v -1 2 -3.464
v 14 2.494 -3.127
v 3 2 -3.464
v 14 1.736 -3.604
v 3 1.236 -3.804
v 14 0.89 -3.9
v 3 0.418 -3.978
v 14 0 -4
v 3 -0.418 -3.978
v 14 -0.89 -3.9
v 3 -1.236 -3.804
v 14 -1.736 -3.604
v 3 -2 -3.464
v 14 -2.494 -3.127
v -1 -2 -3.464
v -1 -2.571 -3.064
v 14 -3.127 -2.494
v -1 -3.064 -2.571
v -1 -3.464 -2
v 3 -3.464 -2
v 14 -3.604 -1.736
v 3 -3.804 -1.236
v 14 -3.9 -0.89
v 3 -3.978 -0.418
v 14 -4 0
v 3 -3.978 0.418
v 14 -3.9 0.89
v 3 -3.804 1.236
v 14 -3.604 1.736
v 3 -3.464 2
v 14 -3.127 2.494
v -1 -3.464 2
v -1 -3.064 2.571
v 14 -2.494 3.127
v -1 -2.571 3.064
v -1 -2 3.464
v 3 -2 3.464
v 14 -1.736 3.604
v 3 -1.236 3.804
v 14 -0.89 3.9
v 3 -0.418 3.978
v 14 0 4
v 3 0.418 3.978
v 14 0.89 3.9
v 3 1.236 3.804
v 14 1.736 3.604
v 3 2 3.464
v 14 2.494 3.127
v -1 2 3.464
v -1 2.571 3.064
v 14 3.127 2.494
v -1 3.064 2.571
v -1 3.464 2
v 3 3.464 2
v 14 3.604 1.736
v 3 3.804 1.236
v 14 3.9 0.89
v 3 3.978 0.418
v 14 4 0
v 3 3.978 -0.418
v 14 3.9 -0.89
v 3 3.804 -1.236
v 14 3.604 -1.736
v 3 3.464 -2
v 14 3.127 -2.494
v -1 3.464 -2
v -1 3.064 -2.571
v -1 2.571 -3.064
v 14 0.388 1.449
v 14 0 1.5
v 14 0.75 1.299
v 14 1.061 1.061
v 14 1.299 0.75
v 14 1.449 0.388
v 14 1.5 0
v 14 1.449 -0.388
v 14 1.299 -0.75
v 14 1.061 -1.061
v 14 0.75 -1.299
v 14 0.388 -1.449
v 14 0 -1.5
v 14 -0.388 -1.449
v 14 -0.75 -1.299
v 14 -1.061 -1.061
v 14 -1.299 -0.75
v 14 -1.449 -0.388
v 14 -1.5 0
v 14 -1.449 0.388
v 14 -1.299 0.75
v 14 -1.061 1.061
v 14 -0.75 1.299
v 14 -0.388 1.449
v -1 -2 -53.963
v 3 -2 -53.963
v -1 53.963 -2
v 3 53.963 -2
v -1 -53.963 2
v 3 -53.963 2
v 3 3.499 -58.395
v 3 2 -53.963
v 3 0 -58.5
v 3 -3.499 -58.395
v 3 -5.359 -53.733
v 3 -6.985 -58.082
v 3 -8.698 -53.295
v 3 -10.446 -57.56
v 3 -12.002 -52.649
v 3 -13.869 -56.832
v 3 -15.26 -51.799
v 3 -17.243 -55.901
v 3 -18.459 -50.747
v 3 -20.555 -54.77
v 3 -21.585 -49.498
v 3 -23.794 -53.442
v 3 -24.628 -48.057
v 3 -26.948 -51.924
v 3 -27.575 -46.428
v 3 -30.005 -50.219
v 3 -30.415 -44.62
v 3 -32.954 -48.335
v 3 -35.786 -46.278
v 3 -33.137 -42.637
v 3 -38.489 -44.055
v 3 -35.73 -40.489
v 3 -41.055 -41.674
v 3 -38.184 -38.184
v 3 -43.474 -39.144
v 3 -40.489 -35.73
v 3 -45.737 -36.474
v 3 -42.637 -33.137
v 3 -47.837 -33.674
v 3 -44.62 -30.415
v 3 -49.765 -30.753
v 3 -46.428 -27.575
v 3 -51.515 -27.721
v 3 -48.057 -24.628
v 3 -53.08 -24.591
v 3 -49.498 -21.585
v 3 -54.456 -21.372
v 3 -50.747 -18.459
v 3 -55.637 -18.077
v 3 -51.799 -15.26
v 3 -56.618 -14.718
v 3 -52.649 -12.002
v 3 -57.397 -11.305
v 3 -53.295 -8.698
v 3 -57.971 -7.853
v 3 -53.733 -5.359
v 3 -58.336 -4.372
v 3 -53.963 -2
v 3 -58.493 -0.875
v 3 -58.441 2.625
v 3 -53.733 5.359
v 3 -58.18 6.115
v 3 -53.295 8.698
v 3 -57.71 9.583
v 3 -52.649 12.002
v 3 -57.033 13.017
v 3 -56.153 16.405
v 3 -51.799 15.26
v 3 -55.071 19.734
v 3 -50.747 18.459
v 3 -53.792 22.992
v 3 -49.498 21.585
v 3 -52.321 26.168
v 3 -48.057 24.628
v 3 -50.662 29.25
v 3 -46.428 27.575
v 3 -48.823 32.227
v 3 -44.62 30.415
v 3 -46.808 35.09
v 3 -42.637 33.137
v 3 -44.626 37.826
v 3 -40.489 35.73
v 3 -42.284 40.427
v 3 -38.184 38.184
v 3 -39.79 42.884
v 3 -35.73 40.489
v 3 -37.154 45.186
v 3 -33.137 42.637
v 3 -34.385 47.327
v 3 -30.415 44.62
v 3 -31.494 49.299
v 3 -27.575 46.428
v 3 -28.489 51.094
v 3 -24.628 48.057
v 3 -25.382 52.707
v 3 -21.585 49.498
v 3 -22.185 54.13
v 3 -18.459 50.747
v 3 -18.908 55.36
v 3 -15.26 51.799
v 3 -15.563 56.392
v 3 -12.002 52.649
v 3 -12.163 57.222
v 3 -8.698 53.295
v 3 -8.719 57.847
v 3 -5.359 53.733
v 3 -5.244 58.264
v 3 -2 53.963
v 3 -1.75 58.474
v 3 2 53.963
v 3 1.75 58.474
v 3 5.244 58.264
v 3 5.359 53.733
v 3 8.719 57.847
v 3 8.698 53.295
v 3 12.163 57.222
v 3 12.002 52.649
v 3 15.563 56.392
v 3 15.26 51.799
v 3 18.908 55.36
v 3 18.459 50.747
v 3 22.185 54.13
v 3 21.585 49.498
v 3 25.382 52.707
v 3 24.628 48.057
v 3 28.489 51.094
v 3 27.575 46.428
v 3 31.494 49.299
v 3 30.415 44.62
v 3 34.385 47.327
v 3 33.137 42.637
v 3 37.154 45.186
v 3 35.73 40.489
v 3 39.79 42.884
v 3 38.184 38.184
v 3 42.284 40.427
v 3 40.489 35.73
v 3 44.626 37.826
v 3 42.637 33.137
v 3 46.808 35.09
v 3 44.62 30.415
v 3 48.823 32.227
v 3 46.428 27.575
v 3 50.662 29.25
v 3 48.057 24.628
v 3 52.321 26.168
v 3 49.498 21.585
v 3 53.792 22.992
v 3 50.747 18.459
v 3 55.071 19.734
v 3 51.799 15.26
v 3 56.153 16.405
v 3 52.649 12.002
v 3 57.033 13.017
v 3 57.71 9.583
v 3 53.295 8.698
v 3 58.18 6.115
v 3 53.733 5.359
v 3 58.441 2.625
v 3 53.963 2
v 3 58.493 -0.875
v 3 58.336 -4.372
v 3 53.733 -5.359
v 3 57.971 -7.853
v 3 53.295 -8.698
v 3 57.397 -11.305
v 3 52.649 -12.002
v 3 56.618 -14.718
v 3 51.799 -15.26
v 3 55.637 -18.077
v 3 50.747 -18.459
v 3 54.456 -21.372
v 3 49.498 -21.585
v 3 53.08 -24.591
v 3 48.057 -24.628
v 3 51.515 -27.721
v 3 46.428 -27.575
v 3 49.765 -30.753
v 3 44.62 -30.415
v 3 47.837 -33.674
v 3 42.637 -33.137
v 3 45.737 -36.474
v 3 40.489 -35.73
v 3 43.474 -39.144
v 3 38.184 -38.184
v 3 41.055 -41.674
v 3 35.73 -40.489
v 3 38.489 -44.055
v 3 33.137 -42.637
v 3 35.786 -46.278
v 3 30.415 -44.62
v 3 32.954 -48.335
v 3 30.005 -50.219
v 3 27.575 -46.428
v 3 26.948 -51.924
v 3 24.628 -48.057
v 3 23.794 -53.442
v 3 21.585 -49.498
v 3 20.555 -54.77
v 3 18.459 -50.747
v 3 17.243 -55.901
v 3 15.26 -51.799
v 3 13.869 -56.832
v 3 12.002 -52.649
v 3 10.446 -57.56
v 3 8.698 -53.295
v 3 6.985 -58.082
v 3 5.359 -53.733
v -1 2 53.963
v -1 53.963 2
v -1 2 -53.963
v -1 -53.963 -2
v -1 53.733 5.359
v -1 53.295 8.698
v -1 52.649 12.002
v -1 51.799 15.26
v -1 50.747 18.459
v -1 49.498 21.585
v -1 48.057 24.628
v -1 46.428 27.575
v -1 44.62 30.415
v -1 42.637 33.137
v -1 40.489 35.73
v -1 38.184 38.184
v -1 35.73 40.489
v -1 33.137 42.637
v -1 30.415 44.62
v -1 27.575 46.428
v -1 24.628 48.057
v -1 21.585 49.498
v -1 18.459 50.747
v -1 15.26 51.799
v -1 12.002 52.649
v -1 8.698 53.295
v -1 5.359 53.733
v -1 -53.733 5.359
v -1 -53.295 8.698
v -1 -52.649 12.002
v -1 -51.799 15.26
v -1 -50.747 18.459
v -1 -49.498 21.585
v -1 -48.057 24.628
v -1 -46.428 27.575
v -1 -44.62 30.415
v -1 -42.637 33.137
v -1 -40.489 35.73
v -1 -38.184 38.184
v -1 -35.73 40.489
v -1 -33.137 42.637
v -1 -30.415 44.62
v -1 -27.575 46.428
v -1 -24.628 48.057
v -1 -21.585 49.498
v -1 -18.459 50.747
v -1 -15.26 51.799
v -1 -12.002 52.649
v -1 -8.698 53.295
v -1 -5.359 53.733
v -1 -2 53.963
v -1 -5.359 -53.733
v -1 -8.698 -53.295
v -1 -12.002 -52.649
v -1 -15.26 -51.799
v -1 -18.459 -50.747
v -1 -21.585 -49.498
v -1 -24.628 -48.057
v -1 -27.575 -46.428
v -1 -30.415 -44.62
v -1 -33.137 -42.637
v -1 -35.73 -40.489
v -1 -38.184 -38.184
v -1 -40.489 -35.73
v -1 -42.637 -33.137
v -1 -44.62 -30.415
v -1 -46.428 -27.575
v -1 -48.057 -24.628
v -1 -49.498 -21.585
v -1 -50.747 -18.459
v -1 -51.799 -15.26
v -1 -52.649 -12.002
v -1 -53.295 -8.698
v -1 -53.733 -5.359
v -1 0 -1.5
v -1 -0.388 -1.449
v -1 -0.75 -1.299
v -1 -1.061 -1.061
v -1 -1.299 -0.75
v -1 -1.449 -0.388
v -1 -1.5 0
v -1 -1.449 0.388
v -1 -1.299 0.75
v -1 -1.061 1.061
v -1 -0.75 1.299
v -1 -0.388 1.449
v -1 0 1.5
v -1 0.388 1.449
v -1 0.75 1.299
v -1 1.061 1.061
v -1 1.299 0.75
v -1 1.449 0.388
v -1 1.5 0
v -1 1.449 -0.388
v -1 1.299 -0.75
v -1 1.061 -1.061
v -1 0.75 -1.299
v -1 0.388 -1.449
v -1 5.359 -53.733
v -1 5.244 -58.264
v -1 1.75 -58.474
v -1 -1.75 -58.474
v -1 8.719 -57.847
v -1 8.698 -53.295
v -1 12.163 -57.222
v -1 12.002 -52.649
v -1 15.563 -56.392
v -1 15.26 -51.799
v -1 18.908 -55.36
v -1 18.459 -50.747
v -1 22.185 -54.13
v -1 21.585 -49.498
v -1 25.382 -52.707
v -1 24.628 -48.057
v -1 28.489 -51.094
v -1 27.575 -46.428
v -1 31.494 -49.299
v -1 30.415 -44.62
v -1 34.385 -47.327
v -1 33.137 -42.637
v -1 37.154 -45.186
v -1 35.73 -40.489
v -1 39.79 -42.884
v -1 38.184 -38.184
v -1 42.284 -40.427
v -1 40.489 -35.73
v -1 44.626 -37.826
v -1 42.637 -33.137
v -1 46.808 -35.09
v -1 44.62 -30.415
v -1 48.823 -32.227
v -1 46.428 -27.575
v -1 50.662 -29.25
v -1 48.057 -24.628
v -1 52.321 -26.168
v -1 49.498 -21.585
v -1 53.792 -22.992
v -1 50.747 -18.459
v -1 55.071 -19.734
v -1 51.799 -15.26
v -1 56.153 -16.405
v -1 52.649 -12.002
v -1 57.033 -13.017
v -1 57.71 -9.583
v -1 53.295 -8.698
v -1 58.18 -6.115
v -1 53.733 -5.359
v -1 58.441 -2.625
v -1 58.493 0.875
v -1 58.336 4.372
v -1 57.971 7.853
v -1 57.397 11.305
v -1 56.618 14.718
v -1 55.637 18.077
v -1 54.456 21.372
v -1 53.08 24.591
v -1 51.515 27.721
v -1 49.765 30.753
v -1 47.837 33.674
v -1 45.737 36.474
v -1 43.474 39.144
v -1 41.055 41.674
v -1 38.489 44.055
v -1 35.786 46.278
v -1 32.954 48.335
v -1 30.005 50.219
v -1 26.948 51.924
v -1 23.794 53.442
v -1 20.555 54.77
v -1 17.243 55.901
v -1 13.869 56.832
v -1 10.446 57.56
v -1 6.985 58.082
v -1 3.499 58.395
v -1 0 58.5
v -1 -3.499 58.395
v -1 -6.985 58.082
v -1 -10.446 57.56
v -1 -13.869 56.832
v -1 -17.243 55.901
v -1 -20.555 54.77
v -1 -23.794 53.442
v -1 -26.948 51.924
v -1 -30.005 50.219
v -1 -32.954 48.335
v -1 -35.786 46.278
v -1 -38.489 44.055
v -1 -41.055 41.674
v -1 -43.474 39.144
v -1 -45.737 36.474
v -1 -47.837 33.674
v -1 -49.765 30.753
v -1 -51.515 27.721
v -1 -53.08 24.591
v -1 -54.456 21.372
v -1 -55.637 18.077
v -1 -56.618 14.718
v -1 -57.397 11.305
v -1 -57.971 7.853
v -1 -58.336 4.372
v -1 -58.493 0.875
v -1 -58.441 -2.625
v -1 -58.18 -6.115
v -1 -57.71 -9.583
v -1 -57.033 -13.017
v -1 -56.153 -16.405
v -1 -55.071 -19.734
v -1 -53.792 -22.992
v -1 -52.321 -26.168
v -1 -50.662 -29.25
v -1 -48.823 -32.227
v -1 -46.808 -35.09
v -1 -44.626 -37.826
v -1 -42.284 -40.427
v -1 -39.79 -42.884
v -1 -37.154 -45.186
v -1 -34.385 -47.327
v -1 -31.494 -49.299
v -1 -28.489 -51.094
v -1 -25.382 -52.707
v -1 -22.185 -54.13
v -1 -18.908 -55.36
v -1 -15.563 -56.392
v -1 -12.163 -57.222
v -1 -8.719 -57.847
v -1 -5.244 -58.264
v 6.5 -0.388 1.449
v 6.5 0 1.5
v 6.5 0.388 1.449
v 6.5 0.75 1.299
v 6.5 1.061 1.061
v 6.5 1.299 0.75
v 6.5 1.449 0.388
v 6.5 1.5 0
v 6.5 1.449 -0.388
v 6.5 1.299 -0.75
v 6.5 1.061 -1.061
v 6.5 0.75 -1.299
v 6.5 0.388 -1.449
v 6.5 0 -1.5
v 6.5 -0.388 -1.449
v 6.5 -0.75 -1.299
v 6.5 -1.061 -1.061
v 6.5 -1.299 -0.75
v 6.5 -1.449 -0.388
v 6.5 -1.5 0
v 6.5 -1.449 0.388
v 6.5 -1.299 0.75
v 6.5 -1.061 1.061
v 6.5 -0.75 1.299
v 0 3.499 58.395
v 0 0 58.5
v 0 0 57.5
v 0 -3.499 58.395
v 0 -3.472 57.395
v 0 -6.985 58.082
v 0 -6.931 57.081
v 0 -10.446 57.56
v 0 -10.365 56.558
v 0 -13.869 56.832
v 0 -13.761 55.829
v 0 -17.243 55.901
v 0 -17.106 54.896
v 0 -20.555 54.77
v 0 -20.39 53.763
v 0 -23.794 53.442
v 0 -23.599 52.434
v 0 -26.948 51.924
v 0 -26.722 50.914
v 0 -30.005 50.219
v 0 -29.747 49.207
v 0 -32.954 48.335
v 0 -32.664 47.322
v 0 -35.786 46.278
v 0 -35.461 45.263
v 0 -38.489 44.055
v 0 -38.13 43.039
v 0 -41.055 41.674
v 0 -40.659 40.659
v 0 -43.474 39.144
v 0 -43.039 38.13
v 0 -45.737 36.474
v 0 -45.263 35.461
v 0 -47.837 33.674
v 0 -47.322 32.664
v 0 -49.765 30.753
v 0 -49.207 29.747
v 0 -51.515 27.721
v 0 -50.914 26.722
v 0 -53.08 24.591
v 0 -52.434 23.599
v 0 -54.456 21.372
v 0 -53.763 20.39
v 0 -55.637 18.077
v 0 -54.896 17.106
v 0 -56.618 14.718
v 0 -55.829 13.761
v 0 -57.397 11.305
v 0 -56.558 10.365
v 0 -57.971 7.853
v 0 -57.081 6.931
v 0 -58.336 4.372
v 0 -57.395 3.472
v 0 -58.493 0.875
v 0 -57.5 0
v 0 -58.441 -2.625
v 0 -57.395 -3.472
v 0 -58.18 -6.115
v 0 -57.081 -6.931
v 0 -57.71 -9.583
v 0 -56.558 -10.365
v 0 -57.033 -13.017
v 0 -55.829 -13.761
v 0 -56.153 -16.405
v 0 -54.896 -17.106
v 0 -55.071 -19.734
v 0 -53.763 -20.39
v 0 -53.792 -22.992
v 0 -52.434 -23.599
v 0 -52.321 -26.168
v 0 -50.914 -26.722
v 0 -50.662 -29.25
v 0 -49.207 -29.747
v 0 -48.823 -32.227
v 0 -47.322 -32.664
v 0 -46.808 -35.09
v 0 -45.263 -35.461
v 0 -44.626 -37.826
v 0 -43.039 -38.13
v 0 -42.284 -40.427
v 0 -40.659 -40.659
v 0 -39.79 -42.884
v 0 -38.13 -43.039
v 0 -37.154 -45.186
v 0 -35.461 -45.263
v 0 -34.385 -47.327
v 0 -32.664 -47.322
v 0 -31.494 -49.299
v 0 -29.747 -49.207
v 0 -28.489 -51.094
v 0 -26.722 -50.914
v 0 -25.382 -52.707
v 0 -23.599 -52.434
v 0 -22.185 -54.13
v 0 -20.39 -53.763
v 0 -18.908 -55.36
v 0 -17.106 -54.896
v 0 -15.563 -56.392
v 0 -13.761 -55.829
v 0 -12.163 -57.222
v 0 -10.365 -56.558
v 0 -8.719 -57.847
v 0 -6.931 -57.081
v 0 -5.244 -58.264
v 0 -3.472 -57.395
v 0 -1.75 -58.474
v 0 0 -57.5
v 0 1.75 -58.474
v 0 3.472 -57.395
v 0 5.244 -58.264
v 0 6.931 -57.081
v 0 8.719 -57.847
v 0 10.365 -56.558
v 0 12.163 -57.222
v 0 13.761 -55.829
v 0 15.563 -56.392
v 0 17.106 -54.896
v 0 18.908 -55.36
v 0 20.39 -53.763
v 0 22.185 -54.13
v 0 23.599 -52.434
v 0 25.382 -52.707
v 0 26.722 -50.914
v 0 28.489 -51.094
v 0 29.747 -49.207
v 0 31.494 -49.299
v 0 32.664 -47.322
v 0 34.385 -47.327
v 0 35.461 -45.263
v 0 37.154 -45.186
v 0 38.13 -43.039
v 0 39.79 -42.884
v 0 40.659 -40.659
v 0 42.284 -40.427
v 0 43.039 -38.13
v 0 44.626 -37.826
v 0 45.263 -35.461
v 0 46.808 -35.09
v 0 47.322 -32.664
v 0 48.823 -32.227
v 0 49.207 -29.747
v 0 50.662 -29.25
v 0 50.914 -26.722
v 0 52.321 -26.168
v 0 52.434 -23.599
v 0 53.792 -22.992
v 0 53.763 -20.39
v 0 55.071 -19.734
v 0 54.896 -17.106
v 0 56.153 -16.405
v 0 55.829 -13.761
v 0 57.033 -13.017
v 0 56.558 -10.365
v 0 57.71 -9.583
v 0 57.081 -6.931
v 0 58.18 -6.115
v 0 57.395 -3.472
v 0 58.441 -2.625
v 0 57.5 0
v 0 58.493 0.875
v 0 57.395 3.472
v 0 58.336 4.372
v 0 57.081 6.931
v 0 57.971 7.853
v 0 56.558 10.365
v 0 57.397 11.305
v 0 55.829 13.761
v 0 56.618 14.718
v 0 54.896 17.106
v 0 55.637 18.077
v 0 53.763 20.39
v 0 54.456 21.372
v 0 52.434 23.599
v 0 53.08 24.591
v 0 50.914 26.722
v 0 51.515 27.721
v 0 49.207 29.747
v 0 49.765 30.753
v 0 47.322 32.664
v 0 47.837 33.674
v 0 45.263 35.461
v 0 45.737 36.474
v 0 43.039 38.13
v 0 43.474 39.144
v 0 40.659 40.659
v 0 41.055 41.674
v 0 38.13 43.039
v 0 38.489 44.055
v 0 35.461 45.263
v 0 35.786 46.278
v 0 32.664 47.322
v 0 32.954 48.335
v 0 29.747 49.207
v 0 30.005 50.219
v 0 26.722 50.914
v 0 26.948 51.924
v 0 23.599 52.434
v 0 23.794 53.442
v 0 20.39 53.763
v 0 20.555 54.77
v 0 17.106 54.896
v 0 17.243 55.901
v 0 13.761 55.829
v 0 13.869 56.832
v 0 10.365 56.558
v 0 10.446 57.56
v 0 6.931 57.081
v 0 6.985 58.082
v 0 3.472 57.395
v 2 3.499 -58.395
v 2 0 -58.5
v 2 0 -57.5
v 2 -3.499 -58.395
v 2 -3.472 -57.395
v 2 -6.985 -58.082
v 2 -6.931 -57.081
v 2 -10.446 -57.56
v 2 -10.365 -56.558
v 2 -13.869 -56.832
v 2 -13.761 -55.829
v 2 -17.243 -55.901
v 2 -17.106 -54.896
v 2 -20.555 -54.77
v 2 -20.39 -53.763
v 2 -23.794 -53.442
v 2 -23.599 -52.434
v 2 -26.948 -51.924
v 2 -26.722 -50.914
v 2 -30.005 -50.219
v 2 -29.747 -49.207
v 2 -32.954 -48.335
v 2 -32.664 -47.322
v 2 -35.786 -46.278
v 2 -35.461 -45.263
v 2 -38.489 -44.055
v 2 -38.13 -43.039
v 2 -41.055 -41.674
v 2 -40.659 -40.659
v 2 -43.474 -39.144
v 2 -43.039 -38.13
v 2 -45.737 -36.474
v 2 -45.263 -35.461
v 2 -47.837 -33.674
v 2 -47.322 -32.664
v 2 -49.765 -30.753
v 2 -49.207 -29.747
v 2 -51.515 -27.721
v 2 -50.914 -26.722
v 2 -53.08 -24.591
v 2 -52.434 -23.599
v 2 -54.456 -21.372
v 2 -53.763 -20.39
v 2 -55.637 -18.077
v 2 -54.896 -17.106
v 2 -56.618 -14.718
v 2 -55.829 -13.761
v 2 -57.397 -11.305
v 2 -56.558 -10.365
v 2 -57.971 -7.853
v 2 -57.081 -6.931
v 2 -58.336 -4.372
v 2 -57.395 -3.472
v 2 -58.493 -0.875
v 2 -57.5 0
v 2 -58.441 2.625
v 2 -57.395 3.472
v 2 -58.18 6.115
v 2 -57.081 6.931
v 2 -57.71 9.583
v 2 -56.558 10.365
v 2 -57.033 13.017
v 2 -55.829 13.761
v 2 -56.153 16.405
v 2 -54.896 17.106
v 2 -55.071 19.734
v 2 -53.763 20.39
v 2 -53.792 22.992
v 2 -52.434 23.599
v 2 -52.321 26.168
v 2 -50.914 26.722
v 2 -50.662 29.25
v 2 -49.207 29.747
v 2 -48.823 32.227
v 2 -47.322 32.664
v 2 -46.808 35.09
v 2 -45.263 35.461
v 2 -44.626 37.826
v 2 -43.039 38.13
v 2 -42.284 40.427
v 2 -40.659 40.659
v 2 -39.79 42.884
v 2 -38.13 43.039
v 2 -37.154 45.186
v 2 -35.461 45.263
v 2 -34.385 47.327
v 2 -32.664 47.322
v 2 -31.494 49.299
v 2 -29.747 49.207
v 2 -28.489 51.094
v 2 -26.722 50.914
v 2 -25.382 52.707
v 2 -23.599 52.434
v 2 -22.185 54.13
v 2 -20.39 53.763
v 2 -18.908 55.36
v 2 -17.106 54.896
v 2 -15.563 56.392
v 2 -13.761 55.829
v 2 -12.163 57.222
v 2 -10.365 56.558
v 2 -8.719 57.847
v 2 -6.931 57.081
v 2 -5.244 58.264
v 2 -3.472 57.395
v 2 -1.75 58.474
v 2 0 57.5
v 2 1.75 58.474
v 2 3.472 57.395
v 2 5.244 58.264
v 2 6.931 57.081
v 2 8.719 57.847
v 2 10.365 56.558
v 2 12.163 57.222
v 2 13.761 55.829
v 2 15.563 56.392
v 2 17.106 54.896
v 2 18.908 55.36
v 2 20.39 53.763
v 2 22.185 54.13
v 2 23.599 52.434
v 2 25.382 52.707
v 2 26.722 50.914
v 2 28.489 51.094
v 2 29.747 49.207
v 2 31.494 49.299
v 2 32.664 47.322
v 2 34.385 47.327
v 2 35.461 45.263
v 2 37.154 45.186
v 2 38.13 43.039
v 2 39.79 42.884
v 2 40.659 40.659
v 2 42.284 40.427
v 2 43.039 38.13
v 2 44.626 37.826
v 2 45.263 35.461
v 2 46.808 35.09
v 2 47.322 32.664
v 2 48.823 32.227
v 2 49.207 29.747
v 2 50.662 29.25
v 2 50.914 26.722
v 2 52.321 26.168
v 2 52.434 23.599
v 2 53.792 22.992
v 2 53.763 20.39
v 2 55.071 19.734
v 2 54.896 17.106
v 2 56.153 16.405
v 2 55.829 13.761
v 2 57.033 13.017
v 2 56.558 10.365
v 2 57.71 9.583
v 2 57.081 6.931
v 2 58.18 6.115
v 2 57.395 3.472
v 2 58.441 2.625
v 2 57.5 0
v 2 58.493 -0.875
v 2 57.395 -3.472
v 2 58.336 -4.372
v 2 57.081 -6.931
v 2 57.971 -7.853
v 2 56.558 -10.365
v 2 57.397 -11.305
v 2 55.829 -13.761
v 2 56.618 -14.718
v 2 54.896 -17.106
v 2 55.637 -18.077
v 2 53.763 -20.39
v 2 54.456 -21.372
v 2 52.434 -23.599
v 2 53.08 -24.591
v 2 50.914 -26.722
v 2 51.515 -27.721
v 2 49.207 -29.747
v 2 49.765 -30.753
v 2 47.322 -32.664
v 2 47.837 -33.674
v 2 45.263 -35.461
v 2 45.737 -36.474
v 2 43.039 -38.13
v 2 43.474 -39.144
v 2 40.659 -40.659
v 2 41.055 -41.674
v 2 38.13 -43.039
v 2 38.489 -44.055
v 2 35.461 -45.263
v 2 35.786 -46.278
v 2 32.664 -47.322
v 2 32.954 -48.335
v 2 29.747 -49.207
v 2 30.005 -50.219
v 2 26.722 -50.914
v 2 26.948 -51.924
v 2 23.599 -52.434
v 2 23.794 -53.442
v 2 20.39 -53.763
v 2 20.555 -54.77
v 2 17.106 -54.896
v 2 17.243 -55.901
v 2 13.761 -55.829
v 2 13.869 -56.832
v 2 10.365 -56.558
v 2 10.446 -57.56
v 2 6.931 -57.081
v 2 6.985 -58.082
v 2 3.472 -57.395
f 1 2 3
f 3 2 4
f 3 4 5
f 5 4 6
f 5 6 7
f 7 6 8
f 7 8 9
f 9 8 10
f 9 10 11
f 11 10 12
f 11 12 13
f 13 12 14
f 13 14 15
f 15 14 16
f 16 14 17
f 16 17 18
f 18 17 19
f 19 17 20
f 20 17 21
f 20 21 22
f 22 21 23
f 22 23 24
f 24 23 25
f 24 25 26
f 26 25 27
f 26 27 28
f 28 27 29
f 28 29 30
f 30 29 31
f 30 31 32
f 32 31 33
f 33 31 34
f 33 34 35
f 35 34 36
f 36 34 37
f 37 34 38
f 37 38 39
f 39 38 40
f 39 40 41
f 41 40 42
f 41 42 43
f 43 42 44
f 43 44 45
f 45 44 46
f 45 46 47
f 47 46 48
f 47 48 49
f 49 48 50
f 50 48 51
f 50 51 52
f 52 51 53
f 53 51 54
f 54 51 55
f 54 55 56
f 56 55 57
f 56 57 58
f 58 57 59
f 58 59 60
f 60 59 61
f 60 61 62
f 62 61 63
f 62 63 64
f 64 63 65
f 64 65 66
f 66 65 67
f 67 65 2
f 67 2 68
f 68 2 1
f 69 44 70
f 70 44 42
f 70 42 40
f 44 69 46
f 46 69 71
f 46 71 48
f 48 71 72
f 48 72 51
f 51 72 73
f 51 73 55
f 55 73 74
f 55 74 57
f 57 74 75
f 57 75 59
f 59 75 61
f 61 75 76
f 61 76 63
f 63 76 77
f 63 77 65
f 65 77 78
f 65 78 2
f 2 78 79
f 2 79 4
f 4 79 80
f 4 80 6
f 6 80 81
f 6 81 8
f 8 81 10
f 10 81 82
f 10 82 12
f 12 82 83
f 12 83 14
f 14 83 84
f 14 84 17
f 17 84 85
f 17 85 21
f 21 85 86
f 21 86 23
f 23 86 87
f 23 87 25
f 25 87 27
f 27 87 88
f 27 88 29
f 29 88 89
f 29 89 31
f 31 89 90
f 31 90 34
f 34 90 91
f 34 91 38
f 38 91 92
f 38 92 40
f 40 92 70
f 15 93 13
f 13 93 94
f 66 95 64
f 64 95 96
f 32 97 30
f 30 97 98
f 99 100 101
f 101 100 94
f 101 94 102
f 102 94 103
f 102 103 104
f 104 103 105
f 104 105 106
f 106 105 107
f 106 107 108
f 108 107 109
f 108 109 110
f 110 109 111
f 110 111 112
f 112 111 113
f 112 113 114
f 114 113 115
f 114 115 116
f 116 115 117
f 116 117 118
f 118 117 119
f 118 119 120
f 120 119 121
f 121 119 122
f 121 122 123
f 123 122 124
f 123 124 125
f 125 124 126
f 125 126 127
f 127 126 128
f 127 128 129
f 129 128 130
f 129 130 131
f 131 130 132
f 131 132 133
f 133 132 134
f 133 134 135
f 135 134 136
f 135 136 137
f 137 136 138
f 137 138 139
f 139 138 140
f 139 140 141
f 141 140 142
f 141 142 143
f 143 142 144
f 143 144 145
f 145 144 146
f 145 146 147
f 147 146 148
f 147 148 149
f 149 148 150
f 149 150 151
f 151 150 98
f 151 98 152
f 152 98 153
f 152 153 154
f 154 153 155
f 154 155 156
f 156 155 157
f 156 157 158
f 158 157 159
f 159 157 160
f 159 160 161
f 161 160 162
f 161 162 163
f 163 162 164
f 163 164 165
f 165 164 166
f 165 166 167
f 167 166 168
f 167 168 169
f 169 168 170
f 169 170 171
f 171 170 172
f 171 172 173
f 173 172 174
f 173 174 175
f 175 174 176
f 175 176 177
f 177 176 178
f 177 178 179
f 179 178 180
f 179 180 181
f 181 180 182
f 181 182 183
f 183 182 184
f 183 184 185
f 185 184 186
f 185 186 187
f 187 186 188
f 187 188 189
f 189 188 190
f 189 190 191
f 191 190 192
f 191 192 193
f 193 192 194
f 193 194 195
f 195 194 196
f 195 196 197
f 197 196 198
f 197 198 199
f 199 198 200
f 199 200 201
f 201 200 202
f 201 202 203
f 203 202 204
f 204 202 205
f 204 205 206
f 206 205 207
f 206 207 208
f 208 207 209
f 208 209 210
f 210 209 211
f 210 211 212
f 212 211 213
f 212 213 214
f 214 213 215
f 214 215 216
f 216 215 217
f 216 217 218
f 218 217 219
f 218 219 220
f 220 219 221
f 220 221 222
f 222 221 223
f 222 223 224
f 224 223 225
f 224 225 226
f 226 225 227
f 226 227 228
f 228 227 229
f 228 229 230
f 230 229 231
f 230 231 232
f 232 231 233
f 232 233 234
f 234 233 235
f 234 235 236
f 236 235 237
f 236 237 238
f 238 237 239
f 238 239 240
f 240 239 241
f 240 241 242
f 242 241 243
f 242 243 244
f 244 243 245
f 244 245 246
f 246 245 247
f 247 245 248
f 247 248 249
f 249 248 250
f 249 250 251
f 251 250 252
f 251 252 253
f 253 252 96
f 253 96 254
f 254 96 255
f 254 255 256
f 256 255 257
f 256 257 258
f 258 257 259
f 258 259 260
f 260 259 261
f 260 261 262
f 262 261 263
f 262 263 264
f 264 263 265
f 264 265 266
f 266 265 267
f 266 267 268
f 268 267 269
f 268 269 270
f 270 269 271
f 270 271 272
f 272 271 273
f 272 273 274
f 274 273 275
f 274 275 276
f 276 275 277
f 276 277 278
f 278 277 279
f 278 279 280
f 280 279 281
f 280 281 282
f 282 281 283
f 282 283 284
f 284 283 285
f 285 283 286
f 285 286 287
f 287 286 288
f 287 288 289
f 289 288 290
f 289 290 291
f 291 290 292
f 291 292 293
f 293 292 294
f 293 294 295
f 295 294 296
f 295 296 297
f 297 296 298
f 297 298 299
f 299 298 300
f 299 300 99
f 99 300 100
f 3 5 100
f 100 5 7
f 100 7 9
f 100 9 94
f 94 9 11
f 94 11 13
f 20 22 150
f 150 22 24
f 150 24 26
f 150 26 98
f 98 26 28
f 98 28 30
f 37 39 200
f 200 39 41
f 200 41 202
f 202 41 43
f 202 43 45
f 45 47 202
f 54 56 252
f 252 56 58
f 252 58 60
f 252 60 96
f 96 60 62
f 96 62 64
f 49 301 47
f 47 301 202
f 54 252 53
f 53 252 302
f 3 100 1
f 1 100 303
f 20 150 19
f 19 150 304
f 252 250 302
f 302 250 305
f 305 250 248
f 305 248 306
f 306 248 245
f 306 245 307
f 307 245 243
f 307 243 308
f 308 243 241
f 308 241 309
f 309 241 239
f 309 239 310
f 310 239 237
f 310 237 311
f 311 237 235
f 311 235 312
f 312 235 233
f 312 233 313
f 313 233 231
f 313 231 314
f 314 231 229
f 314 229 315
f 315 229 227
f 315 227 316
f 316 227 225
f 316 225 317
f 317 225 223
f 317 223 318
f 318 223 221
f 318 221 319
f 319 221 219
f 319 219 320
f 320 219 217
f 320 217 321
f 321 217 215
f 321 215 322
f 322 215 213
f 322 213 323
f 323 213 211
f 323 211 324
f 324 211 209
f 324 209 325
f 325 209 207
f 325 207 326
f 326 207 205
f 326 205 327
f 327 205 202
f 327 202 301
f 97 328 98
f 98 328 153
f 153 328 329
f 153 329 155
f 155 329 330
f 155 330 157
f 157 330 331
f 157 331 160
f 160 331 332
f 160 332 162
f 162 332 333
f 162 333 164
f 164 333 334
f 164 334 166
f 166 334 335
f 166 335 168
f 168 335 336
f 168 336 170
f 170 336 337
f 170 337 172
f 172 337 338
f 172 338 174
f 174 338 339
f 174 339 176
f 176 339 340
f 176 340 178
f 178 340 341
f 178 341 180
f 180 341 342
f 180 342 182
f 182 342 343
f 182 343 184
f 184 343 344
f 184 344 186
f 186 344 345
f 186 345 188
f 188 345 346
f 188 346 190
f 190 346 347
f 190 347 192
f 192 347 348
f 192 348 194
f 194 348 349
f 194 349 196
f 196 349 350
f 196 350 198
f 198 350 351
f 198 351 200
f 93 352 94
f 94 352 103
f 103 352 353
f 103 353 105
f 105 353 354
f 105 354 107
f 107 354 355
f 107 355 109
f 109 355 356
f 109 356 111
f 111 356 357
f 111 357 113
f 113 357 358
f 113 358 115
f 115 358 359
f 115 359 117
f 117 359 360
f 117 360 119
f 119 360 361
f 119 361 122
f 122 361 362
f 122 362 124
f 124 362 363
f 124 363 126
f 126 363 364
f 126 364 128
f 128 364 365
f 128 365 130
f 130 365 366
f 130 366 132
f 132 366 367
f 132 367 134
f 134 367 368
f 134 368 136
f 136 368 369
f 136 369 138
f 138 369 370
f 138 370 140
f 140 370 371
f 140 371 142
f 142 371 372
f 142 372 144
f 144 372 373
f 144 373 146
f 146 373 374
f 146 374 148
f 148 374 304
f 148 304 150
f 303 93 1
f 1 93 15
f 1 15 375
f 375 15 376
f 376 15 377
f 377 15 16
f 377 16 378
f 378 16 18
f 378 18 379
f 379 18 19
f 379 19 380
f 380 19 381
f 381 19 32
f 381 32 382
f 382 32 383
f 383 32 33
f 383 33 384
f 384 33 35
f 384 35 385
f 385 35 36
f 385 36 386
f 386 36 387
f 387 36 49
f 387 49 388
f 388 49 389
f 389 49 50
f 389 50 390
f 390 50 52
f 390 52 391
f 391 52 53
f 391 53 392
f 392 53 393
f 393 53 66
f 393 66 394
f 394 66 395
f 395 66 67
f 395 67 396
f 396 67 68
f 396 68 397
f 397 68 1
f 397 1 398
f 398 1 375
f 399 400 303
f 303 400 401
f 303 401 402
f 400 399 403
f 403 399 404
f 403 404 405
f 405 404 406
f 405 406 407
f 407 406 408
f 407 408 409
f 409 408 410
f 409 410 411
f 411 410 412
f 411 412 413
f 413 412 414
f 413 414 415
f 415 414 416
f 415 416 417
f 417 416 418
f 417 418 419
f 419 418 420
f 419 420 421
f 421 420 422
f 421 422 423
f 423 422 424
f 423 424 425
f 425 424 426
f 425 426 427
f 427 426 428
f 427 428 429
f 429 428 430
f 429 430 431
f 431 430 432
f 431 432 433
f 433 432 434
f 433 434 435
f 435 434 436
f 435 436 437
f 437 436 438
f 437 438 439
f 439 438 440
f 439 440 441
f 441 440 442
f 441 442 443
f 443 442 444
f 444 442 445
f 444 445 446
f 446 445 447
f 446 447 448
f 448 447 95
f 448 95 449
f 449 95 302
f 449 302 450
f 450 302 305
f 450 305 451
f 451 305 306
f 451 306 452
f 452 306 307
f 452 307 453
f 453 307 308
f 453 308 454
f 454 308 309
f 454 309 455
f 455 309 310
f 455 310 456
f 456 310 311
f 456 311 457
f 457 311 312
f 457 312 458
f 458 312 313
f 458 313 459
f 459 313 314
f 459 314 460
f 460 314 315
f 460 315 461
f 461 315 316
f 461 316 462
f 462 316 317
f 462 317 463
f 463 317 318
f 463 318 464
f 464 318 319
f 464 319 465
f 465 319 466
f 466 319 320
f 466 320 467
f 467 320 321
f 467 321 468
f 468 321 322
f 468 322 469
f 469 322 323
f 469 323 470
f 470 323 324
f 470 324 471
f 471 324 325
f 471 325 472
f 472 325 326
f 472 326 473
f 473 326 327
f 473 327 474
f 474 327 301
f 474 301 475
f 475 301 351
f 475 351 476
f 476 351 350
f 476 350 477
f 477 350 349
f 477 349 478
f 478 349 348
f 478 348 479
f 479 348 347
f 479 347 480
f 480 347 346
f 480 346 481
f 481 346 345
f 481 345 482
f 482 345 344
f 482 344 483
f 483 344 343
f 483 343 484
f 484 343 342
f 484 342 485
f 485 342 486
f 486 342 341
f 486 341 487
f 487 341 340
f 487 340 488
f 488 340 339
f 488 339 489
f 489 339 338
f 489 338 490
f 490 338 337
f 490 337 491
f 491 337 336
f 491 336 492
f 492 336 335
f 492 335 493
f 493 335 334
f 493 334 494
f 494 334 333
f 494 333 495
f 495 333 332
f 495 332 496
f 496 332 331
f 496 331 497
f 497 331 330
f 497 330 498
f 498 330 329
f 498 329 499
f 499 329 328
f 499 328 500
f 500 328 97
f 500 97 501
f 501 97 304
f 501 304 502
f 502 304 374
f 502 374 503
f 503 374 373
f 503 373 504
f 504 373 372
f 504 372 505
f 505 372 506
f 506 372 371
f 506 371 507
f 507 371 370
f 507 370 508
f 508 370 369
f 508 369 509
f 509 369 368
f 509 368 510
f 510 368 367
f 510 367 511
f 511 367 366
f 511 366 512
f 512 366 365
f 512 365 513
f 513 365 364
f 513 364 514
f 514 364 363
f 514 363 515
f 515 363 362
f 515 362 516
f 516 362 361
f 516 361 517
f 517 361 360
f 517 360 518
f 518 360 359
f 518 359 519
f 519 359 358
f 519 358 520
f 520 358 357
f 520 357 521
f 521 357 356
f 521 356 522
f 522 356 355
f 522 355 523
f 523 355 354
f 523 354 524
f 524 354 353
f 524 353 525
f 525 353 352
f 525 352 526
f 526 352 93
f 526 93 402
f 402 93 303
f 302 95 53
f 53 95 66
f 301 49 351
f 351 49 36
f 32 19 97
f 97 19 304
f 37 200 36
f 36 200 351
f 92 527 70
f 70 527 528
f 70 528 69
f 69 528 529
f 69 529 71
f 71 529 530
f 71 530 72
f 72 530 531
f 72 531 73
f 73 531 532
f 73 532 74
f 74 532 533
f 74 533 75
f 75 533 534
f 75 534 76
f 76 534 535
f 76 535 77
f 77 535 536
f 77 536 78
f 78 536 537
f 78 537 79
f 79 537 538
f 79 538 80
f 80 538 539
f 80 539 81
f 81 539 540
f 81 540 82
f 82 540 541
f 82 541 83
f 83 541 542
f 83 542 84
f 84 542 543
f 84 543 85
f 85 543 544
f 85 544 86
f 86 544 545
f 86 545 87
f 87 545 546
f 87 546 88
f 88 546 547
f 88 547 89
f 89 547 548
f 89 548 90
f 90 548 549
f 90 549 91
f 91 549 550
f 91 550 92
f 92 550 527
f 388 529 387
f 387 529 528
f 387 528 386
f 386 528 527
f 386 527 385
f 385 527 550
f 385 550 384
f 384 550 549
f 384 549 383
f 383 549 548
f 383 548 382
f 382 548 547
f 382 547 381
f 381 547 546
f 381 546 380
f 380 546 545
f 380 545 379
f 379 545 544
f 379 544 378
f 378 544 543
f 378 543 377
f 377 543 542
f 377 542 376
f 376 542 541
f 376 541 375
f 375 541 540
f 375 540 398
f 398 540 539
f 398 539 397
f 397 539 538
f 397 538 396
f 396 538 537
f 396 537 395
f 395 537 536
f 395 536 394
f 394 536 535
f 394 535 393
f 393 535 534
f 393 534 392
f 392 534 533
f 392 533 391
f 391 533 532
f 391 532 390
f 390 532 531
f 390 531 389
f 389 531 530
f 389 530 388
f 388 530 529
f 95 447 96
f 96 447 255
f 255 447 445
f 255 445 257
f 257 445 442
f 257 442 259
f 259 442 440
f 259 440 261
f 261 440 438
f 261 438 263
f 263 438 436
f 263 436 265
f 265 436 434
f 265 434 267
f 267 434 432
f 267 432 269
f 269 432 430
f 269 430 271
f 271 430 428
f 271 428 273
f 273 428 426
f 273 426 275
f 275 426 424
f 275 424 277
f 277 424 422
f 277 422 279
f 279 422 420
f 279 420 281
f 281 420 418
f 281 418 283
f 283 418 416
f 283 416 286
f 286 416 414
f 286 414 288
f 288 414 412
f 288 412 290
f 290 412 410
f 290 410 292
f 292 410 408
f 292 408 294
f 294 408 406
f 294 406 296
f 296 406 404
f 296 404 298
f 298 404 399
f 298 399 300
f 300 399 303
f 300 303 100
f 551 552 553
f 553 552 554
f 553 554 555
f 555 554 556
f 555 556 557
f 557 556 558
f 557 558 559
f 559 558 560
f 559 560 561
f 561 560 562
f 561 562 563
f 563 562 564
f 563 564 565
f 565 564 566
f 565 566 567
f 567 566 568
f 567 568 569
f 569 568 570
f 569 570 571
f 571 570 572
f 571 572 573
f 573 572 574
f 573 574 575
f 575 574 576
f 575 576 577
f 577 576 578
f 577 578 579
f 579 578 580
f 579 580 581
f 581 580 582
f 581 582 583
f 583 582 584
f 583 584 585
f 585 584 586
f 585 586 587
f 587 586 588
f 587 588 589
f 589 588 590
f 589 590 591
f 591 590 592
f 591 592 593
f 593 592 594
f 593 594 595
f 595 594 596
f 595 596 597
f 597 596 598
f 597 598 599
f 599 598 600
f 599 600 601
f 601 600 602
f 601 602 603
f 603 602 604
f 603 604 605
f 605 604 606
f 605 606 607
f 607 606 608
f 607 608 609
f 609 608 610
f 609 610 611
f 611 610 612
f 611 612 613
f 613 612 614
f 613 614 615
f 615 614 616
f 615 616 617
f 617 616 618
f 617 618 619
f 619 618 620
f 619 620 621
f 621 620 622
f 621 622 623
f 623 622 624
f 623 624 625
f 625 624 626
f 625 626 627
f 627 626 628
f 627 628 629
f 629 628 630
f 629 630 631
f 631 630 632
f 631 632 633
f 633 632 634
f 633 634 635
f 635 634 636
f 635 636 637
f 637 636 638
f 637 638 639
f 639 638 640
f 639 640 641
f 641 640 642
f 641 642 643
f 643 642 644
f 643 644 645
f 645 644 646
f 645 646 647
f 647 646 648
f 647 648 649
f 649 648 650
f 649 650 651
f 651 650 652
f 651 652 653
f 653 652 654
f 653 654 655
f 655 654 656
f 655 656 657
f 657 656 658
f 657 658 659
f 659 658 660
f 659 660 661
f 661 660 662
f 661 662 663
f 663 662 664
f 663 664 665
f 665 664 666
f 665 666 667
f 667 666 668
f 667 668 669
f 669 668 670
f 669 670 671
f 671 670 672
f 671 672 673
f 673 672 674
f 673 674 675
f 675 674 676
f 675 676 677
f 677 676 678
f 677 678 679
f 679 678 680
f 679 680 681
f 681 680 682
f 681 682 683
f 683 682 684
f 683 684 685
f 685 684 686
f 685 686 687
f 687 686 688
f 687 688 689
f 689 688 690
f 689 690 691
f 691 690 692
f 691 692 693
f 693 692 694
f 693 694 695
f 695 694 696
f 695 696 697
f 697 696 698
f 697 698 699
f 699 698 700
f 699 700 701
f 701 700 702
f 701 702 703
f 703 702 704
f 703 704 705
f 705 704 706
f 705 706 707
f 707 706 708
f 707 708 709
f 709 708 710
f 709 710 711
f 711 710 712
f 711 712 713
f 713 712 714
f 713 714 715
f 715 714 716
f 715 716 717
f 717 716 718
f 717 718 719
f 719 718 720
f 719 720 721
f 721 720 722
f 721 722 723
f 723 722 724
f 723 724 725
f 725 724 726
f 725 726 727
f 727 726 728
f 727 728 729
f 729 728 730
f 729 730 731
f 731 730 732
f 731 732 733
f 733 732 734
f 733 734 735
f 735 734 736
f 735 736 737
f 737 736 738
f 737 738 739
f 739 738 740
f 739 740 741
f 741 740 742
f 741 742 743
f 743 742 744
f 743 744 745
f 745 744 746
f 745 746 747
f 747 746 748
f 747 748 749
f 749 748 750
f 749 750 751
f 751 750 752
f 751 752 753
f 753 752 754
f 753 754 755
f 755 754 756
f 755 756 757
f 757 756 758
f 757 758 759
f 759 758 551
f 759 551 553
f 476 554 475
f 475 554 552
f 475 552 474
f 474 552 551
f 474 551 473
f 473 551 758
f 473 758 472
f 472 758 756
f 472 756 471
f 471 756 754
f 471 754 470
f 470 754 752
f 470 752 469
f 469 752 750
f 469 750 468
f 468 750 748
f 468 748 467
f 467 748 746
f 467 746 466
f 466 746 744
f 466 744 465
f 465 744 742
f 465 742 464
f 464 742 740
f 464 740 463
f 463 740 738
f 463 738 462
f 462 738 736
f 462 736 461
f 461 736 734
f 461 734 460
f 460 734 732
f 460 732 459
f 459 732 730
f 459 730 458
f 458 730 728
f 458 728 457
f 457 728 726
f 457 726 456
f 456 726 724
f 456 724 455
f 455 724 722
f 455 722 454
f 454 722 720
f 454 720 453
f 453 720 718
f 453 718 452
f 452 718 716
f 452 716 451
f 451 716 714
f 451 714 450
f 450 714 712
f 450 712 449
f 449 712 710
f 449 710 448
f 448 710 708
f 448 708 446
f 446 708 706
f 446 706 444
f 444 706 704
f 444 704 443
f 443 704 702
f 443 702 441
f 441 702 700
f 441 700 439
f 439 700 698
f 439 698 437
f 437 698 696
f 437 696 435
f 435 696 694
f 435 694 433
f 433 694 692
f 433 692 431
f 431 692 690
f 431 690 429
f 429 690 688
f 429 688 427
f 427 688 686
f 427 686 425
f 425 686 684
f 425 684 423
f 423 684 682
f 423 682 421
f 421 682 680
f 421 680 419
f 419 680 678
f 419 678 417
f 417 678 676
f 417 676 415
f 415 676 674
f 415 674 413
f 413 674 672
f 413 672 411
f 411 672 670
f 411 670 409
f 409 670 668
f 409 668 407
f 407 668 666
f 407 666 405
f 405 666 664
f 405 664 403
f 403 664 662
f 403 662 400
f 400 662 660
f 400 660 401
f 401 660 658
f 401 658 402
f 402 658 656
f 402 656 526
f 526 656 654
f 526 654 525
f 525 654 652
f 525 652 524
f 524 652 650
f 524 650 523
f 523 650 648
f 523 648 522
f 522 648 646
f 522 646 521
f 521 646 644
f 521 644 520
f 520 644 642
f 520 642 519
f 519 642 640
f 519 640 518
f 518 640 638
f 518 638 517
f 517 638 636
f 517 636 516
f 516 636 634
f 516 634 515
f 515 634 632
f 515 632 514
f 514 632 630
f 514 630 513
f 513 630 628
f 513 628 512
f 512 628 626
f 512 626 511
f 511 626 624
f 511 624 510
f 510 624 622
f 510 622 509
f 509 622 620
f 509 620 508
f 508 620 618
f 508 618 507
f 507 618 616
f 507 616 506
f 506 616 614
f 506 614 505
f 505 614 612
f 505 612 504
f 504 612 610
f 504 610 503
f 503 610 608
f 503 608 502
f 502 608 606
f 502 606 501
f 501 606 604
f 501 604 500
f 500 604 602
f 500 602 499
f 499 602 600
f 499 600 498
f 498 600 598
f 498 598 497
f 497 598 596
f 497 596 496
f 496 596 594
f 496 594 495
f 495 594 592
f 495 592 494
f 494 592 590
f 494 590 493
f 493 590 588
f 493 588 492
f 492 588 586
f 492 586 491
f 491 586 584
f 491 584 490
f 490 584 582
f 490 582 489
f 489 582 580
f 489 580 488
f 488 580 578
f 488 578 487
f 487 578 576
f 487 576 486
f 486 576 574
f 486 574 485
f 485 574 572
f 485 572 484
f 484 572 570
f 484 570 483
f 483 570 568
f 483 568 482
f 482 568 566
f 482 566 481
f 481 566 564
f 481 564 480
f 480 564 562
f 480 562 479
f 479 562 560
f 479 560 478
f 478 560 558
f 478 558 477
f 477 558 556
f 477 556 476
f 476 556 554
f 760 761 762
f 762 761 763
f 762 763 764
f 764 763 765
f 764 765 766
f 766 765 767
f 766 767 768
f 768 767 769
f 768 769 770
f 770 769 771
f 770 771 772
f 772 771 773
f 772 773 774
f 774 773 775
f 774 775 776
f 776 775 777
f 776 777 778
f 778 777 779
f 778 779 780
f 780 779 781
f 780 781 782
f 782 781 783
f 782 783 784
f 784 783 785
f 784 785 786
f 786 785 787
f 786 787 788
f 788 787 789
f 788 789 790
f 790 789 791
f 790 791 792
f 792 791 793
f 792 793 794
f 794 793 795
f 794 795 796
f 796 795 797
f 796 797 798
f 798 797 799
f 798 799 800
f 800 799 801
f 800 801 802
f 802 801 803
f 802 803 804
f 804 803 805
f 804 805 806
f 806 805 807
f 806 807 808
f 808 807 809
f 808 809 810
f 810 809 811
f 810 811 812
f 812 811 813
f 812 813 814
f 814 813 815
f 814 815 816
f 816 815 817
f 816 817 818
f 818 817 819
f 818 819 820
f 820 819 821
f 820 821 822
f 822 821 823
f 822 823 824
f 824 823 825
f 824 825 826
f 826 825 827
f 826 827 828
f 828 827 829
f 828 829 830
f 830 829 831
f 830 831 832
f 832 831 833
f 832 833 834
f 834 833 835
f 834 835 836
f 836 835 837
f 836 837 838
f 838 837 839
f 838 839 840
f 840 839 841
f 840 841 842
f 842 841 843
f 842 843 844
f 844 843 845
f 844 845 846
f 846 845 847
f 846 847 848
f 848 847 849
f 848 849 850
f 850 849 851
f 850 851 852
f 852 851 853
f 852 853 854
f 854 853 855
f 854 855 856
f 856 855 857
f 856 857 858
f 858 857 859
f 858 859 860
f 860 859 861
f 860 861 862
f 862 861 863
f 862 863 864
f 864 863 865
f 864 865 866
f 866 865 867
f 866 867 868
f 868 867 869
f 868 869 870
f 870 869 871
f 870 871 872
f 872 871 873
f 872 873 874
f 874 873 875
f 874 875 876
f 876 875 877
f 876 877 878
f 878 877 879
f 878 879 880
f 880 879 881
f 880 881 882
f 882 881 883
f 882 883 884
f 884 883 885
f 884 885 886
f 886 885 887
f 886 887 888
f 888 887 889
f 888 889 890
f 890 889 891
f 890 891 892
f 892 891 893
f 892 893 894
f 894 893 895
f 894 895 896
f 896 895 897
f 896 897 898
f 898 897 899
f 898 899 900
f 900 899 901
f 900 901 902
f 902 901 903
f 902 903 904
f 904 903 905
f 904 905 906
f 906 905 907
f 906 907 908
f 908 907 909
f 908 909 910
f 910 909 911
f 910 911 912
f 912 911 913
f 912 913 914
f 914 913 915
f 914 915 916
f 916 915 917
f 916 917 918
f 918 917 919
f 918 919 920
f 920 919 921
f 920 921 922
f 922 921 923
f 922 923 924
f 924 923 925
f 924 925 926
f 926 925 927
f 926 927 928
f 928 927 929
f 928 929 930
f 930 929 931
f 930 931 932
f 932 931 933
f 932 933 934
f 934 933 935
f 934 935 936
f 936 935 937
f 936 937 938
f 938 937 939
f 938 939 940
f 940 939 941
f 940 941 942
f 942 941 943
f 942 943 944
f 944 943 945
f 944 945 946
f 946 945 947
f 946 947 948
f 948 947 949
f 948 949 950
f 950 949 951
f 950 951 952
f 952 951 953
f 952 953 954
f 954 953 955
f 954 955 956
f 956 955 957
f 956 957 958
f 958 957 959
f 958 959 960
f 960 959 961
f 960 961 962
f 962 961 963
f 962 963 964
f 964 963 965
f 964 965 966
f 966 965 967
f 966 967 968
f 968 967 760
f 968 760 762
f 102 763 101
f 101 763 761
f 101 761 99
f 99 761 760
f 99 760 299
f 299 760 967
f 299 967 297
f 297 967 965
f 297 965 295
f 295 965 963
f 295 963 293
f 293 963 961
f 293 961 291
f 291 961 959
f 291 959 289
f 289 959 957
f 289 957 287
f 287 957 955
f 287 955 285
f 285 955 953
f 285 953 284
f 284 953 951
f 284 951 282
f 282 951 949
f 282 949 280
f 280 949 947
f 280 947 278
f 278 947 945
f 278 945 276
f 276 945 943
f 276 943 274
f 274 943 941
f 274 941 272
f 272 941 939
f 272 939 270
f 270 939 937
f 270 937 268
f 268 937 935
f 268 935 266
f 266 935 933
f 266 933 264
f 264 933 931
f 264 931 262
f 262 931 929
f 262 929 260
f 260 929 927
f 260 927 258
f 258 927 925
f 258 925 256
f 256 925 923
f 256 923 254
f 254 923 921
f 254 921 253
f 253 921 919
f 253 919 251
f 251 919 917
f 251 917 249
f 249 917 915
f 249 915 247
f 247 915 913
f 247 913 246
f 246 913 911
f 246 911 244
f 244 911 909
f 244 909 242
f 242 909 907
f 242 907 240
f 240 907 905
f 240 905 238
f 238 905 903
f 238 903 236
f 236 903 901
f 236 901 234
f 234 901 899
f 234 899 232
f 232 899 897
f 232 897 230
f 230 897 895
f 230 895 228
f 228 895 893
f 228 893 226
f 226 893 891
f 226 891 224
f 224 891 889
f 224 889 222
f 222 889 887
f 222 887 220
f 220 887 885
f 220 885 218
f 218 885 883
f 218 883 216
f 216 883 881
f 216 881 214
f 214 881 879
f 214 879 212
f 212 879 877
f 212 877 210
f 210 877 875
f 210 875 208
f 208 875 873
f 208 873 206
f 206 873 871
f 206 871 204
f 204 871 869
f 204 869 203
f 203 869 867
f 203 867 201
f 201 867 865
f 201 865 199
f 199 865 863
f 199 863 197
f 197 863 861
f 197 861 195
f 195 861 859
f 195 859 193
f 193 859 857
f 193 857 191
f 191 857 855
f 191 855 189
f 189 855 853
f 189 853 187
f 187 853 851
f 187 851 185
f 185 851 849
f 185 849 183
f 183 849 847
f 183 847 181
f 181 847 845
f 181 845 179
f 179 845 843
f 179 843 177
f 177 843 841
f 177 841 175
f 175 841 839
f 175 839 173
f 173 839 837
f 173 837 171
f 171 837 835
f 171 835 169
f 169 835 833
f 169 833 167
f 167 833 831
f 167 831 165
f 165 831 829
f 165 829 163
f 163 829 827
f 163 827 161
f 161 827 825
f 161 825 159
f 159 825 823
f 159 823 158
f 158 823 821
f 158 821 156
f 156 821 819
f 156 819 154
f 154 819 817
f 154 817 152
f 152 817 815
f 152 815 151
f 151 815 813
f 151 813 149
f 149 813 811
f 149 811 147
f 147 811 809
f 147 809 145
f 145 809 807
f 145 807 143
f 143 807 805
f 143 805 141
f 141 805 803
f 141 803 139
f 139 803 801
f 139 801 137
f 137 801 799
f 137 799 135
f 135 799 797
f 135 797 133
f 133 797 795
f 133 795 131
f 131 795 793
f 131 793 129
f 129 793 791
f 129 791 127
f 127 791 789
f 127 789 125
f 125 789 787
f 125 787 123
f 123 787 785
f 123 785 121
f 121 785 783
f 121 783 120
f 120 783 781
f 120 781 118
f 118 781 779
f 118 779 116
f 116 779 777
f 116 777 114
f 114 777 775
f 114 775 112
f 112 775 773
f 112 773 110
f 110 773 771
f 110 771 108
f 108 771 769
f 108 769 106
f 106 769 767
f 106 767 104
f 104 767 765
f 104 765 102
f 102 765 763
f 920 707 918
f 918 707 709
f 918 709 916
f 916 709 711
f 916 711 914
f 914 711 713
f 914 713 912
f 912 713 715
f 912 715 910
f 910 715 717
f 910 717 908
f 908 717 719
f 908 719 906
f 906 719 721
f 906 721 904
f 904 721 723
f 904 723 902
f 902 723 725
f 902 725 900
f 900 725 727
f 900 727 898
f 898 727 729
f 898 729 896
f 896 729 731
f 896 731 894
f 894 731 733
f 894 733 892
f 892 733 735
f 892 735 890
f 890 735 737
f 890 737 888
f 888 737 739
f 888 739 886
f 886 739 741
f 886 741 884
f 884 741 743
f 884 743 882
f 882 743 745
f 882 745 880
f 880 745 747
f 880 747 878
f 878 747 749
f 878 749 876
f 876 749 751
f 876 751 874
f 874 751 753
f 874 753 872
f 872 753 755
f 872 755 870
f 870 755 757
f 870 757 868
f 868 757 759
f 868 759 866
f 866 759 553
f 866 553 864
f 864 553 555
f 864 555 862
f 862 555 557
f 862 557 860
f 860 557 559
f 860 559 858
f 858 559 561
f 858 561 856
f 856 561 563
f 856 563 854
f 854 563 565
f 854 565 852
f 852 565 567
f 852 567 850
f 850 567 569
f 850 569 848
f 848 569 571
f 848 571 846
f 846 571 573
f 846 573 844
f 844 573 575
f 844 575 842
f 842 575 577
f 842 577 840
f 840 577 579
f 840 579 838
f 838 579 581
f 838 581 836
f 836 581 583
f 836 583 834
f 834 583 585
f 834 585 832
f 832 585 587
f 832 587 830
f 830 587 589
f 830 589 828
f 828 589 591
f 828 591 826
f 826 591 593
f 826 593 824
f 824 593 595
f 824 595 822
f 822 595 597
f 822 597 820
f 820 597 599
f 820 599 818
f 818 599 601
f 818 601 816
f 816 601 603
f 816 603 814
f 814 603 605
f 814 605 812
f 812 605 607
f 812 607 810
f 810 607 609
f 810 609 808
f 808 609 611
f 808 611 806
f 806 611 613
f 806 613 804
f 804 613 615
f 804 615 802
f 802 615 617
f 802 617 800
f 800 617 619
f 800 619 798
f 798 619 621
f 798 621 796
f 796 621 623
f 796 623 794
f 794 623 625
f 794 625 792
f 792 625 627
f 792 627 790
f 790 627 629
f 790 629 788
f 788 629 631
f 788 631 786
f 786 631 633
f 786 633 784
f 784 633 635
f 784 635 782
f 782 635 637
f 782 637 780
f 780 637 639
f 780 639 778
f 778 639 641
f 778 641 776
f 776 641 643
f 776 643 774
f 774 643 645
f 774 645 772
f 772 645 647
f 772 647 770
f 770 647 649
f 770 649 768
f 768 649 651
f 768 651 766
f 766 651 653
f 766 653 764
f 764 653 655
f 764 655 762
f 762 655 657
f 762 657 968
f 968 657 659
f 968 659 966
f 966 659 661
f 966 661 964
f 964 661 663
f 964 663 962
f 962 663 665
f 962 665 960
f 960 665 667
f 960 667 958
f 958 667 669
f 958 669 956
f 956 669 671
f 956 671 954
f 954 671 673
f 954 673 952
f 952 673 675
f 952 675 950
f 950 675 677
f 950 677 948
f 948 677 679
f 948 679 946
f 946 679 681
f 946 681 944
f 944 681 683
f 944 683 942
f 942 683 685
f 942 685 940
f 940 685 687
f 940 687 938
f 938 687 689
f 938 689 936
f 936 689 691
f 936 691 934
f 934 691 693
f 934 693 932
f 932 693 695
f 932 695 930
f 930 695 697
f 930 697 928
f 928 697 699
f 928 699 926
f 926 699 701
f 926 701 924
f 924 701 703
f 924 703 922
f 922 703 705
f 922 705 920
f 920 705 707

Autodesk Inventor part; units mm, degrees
ref_plane "YZ Plane" through (0, 0, 0) normal (1, 0, 0) x (0, 1, 0)
ref_plane "XZ Plane" through (0, 0, 0) normal (0, 1, 0) x (-1, 0, 0)
ref_plane "XY Plane" through (0, 0, 0) normal (0, 0, 1) x (1, 0, 0)
sketch "Sketch1" plane through (0, 0, 0) normal (1, 0, 0) x (0, 1, 0)
  circle A0 centre (0, 0) radius 57.5
  dimension "d0" = 115
extrude "Extrusion1" add sketch "Sketch1" along normal blind 2
sketch "Sketch2" plane through (2, 0, 0) normal (1, 0, 0) x (0, 0, -1)
  circle A0 centre (0, 0) radius 58.5
  dimension "d3" = 117
extrude "Extrusion2" add sketch "Sketch2" along normal blind 1
sketch "Sketch3" plane through (0, 0, 0) normal (-1, 0, 0) x (0, 0, 1)
  circle A0 centre (0, 0) radius 58.5
extrude "Extrusion3" add sketch "Sketch3" along normal blind 1
sketch "Sketch4" plane through (-1, 0, 0) normal (-1, 0, 0) x (0, 0, 1)
  circle A0 centre (0, 0) radius 54
  dimension "d8" = 108
extrude "Extrusion4" cut sketch "Sketch4" against normal blind 5
sketch "Sketch5" plane through (-1, 0, 0) normal (-1, 0, 0) x (0, 0, 1)
  circle A0 centre (0, 0) radius 1.5
  circle A1 centre (0, 0) radius 3.5
  dimension "d11" = 3
  dimension "d12" = 7
extrude "Extrusion5" add sketch "Sketch5" against normal blind 5
sketch "Sketch6" plane through (-1, 0, 0) normal (-1, 0, 0) x (0, 0, 1)
  line L0 (2.7345, 0) -> (2.7345, 2) construction
  line L1 (2.7345, 2) -> (2.7345, -2) construction
  line L2 (2.7345, -2) -> (54.8201, -2)
  line L3 (54.8201, -2) -> (54.8201, 2)
  line L4 (54.8201, 2) -> (2.7345, 2)
  line L5 (2.7345, 2) -> (2.7345, -2)
  point P0 (0, 0)
  dimension "d15" = 2
  dimension "d16" = 4
extrude "Extrusion6" add sketch "Sketch6" against normal blind 4
pattern_circular "Circular Pattern1" count 4 over 360 about axis through (-1, 0, 0) along (1, 0, 0) of "Extrusion6"
sketch "Sketch7" plane through (-1, 0, 0) normal (-1, 0, 0) x (0, 0, 1)
  circle A0 centre (0, 0) radius 1.5
  circle A1 centre (0, 0) radius 4
  dimension "d22" = 8
extrude "Extrusion7" add sketch "Sketch7" against normal blind 15
properties part number "mtv_pushingWheel_1-13"
